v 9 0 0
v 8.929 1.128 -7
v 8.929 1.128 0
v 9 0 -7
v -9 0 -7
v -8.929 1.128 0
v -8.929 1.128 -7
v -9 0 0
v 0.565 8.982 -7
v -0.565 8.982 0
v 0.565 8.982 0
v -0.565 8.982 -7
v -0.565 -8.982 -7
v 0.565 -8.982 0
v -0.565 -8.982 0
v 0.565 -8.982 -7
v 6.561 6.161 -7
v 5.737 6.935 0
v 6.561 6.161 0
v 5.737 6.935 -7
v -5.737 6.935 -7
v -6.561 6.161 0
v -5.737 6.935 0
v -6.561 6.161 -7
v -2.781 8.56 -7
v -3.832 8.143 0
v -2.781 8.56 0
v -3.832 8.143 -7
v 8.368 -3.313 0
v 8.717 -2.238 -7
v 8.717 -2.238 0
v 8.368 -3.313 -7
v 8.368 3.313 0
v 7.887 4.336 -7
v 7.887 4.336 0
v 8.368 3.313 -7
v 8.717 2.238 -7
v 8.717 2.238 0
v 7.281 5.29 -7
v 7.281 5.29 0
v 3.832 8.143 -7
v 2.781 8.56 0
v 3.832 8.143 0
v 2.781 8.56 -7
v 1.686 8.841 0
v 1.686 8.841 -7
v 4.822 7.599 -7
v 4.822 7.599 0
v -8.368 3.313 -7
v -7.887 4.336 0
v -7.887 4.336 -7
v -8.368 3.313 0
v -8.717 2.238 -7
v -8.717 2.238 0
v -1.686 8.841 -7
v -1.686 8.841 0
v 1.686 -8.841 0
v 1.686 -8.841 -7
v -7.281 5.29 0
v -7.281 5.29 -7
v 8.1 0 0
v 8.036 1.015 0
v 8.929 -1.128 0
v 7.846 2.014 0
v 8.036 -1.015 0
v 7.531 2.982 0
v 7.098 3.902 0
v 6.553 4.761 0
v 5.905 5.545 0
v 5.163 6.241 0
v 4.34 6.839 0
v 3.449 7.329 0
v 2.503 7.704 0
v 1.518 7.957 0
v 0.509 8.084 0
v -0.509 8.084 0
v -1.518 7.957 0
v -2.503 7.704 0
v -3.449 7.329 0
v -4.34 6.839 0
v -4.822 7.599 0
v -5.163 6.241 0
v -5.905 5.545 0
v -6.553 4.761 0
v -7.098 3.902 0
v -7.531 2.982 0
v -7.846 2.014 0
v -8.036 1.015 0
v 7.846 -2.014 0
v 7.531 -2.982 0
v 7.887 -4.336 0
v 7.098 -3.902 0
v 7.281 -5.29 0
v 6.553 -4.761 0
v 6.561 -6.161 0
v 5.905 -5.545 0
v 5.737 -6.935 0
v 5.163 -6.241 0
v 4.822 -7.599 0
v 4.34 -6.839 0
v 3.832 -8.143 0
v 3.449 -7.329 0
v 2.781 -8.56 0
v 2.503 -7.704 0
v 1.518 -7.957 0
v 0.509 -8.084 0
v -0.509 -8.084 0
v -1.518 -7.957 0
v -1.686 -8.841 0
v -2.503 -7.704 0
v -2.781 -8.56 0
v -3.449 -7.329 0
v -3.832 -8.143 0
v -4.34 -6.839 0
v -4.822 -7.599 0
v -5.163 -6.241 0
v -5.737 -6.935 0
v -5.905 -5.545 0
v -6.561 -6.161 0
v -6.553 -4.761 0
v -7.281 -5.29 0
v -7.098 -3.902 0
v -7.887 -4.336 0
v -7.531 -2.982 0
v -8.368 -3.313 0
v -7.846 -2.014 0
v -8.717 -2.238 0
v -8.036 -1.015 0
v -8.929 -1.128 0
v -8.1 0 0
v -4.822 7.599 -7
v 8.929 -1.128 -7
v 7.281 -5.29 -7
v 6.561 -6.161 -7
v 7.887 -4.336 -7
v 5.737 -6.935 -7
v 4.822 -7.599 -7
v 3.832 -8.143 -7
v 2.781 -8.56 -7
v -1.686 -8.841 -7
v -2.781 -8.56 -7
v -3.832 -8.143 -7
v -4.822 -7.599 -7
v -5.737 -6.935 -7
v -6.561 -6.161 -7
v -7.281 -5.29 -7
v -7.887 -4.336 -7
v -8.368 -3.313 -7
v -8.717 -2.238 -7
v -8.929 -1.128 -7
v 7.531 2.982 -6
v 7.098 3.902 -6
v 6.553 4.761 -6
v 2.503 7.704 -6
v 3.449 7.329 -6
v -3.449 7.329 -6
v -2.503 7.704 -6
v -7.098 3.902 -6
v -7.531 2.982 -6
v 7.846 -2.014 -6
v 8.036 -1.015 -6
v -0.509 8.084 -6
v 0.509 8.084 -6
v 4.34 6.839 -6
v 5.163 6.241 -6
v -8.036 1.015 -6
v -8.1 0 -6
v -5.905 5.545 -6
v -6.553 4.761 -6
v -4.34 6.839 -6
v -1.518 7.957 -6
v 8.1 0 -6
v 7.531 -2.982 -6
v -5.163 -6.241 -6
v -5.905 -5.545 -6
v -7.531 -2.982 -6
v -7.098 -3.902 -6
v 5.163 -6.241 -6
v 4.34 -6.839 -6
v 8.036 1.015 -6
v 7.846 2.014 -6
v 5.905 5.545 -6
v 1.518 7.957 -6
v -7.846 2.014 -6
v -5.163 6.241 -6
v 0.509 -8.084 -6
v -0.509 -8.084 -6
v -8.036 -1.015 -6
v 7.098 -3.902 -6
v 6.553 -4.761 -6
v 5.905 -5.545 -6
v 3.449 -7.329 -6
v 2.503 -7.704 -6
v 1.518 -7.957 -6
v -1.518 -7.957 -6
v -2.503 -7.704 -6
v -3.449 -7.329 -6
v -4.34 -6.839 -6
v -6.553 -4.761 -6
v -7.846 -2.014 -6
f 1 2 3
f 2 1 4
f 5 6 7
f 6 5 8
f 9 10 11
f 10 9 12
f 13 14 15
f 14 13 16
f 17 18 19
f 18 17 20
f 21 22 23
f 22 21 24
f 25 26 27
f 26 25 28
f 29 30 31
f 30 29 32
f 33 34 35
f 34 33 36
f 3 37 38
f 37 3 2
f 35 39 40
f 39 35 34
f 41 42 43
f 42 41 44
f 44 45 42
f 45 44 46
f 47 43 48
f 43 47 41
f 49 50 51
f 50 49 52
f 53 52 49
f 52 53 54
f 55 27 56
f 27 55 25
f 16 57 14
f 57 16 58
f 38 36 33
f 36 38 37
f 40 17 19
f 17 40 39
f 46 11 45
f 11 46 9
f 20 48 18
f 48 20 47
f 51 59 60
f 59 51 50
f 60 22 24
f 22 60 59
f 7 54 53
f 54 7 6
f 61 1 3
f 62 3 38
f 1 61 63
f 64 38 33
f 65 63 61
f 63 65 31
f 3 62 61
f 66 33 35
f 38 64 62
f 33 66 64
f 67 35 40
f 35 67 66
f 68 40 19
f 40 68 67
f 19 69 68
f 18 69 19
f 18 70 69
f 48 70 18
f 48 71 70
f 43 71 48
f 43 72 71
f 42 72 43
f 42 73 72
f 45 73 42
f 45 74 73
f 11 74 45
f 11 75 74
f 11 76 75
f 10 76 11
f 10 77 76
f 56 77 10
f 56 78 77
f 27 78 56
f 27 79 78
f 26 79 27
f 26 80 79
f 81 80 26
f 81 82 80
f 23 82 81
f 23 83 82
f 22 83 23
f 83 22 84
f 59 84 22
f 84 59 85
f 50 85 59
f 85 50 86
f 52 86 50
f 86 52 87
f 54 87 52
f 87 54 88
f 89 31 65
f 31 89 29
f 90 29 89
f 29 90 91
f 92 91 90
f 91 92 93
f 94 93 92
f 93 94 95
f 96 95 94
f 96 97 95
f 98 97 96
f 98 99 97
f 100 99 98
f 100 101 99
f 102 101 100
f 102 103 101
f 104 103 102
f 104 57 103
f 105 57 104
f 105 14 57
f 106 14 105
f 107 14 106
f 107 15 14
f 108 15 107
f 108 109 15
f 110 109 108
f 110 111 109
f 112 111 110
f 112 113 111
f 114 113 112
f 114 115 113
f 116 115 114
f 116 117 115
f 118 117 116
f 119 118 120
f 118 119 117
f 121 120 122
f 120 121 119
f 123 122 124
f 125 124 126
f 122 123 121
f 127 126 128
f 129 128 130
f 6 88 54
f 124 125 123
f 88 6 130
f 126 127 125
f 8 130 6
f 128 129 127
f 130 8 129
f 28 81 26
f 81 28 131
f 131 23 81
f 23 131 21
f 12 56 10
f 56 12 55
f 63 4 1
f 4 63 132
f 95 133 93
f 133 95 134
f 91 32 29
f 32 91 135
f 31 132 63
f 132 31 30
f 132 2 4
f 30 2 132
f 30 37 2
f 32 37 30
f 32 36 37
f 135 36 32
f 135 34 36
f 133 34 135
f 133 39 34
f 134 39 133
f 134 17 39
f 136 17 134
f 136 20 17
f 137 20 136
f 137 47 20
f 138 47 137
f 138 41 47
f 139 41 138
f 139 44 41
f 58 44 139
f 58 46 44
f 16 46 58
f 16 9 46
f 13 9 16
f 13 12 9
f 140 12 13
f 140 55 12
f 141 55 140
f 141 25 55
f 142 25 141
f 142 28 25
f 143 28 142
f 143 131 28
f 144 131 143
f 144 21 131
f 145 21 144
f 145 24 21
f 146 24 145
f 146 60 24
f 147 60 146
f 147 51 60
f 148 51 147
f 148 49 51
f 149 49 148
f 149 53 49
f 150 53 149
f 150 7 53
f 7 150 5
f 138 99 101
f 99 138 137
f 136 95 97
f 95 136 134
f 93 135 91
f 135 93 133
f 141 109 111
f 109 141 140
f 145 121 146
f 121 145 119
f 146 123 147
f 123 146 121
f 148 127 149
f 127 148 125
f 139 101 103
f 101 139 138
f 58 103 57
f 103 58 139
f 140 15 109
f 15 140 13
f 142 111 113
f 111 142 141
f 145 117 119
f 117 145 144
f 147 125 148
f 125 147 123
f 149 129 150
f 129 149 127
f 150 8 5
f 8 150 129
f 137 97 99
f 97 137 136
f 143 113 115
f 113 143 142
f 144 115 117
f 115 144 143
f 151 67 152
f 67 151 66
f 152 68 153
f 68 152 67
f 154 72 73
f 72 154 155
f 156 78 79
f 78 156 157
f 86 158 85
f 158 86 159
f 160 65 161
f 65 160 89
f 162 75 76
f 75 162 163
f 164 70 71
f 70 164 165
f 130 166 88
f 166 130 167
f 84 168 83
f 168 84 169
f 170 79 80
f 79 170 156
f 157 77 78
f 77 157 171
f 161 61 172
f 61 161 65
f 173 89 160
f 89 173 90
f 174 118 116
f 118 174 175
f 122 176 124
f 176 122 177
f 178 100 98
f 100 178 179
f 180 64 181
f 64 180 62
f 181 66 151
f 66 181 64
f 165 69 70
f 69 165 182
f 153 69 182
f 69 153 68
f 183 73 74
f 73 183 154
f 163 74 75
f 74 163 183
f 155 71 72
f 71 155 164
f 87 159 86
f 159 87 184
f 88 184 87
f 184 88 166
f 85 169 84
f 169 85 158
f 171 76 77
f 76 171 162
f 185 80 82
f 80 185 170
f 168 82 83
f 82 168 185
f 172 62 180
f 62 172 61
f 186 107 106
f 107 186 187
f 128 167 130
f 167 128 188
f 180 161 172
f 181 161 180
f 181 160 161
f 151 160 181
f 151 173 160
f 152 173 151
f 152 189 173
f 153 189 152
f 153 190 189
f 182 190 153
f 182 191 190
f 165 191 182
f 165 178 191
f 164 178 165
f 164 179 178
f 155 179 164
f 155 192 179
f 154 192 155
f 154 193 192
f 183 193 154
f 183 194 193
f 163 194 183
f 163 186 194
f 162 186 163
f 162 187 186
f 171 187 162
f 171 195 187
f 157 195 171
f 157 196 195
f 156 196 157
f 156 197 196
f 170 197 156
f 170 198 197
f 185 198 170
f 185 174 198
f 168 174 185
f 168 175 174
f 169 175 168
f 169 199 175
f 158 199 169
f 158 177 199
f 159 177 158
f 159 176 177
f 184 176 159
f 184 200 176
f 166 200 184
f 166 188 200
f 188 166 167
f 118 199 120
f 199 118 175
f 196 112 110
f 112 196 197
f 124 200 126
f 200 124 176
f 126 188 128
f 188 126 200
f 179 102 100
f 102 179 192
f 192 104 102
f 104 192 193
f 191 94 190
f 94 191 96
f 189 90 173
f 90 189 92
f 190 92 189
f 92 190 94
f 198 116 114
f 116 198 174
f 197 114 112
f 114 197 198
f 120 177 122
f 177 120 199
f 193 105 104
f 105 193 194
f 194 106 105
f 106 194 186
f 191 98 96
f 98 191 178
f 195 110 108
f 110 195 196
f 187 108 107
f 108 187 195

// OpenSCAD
$fn = 50;


difference() {
	union() {
		translate(v = [0, 0, -7.0000000000]) {
			cylinder(h = 7, r = 9.0000000000);
		}
	}
	union() {
		#translate(v = [0, 0, -6.0000000000]) {
			cylinder(h = 6, r = 8.1000000000);
		}
	}
}
